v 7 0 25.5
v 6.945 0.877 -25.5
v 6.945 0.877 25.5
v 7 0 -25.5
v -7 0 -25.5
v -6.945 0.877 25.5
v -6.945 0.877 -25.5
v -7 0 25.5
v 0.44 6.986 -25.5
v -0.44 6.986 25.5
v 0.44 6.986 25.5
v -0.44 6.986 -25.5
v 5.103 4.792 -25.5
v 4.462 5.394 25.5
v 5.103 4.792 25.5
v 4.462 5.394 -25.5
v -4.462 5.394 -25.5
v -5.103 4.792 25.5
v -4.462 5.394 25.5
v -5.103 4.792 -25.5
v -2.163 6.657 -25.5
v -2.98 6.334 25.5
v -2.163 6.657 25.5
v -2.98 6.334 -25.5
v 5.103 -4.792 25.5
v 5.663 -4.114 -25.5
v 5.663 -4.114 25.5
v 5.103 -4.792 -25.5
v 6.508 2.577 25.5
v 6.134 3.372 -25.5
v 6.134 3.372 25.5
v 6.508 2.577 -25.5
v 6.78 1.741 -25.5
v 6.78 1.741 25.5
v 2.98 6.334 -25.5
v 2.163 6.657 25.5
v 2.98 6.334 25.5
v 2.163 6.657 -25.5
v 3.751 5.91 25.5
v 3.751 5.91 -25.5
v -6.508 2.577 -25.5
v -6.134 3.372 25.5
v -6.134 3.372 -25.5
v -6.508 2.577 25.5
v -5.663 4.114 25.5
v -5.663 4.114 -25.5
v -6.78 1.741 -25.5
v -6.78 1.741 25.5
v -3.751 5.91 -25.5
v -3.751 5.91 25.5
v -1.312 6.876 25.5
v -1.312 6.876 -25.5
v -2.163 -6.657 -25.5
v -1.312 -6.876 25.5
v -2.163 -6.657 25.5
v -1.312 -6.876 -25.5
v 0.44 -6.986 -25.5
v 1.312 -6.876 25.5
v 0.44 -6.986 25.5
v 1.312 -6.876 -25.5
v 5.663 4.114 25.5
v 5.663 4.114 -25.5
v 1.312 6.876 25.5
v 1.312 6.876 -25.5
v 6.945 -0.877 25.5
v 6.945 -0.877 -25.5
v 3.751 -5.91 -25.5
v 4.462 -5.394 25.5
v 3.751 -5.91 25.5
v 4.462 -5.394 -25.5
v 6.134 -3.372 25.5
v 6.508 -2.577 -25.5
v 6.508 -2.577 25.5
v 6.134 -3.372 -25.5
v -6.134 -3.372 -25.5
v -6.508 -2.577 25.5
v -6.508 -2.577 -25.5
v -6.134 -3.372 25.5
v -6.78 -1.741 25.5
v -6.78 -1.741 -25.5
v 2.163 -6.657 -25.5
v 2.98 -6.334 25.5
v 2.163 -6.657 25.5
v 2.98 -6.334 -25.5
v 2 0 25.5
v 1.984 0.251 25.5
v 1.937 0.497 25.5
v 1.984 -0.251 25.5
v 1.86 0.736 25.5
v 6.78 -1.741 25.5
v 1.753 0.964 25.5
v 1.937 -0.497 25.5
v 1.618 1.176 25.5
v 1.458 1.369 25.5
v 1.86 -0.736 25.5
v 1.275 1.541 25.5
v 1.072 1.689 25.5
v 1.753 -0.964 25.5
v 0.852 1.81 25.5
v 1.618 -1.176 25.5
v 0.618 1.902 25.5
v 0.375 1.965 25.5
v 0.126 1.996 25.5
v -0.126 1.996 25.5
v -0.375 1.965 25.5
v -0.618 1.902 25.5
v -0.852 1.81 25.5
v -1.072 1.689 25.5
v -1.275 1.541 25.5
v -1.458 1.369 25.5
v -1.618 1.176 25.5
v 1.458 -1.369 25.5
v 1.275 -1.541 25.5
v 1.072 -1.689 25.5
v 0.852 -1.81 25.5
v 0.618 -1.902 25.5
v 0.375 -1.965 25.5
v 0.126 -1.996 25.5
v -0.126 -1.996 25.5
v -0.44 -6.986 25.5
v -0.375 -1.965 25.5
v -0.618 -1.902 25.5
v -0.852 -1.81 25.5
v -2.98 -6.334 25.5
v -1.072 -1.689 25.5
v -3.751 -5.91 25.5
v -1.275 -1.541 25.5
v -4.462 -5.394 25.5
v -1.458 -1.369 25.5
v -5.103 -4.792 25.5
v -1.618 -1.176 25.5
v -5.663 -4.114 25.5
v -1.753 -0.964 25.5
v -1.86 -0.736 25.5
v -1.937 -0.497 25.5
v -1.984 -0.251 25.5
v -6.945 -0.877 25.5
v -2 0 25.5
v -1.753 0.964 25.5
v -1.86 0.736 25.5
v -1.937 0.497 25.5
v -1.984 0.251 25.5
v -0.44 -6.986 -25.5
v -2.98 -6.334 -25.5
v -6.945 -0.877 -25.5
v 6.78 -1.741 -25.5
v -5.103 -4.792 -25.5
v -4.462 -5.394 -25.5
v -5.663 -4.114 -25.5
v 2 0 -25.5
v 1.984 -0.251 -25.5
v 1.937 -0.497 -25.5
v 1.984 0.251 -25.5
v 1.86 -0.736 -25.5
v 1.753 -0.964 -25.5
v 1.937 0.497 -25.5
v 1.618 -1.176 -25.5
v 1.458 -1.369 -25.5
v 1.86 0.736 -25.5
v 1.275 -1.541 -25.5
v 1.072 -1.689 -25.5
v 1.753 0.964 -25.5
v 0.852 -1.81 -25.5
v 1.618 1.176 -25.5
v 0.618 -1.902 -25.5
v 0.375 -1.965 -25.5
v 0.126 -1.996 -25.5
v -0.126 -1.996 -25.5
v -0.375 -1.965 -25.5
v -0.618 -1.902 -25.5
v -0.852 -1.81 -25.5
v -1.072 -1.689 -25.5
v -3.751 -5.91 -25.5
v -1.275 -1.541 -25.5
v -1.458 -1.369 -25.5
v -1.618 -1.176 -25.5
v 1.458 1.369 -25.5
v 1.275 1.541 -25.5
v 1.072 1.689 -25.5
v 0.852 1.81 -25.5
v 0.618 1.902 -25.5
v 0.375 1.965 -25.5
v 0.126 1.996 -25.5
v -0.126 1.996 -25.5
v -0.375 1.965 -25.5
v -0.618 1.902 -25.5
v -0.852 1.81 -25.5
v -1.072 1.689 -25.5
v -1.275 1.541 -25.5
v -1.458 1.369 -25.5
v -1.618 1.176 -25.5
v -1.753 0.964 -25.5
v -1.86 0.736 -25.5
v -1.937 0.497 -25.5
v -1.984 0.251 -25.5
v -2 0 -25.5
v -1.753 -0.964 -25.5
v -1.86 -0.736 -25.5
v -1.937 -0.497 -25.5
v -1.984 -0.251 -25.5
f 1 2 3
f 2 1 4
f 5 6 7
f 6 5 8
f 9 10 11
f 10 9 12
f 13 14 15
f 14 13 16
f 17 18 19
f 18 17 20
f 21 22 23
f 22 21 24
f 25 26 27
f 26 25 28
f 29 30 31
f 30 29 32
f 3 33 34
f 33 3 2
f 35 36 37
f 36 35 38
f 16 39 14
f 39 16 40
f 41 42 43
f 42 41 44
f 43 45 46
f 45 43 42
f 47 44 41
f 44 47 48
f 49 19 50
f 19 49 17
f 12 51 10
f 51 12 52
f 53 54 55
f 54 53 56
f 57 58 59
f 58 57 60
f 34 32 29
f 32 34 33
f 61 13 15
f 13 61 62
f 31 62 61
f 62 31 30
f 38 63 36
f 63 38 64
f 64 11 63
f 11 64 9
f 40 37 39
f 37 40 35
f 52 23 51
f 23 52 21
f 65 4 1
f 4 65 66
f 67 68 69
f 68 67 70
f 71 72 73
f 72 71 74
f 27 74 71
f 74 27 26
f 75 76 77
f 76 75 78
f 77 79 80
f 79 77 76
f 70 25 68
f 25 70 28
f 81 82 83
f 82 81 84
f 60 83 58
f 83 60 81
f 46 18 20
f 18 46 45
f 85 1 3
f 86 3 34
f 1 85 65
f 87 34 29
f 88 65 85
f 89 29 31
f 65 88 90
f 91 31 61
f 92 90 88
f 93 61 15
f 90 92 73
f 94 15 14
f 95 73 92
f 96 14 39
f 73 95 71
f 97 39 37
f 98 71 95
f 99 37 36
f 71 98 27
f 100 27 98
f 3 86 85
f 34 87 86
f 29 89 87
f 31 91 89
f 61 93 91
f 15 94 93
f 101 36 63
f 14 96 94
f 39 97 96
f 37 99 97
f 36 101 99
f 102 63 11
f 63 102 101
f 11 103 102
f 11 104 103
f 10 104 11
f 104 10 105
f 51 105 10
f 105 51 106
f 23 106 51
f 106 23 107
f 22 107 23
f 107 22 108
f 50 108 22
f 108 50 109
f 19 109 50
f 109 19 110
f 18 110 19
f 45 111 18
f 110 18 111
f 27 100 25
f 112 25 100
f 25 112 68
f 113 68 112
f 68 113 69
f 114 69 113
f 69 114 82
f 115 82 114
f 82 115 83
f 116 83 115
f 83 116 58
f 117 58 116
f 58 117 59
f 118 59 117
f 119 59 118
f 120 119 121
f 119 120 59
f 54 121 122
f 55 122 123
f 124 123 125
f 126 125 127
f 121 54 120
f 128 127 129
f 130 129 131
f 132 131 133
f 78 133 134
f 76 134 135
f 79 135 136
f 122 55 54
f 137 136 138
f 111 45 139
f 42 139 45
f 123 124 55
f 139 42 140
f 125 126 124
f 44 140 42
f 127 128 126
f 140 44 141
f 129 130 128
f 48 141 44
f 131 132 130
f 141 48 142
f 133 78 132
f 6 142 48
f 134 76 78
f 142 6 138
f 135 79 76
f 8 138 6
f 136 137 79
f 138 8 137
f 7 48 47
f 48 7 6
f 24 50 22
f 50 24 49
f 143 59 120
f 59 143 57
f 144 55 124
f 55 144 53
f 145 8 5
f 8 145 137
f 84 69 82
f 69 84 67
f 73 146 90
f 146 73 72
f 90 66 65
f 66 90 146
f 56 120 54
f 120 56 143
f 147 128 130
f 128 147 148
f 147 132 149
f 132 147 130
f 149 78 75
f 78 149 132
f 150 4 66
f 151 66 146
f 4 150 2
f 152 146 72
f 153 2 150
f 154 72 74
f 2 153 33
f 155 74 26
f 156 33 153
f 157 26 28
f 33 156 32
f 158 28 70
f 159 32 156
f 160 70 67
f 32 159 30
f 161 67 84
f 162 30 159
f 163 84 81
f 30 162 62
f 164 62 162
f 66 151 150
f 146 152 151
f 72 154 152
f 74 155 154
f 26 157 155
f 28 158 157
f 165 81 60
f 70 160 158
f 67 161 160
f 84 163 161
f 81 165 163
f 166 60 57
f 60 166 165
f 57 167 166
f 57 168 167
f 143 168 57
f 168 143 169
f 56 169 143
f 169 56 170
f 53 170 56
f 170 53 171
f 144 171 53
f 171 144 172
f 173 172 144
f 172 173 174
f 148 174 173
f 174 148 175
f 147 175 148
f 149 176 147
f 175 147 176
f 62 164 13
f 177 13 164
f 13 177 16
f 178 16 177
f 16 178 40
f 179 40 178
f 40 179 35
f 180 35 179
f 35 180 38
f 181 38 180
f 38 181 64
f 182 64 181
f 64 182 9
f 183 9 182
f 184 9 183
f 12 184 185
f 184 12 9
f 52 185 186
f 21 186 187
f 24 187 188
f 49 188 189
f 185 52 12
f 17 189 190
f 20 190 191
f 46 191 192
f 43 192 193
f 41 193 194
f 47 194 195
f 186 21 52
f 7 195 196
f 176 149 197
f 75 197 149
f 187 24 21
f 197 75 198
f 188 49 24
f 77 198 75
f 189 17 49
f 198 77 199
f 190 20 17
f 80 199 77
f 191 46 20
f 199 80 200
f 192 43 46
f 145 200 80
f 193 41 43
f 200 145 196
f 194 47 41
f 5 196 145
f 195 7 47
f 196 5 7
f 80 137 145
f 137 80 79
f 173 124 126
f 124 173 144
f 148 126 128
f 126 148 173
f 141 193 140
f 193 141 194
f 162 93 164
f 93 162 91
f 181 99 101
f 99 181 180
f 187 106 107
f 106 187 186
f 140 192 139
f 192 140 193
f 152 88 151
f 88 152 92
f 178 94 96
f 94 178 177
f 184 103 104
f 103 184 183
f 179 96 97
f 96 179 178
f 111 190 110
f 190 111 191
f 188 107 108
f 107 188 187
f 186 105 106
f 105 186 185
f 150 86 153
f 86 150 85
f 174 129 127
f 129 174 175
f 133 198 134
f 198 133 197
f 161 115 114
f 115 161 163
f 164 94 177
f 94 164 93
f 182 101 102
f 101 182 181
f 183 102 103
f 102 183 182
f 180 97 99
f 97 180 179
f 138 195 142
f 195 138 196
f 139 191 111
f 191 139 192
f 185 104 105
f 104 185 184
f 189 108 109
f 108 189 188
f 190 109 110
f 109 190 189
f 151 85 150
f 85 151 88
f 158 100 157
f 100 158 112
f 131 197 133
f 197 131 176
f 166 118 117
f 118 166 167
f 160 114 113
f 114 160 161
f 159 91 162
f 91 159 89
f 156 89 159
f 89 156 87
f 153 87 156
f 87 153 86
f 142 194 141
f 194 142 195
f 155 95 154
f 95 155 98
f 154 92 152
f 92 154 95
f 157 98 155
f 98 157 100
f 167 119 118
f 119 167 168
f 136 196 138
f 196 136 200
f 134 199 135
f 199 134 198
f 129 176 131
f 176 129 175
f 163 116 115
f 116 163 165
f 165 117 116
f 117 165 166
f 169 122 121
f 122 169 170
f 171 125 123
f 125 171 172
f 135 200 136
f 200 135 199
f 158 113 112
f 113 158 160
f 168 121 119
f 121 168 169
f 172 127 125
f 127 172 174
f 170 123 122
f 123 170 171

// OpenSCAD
$fn = 50;


difference() {
	union() {
		translate(v = [0, 0, -25.5000000000]) {
			cylinder(h = 51, r = 7.0000000000);
		}
	}
	union() {
		translate(v = [0, 0, -100.0000000000]) {
			cylinder(h = 200, r = 2.0000000000);
		}
	}
}
